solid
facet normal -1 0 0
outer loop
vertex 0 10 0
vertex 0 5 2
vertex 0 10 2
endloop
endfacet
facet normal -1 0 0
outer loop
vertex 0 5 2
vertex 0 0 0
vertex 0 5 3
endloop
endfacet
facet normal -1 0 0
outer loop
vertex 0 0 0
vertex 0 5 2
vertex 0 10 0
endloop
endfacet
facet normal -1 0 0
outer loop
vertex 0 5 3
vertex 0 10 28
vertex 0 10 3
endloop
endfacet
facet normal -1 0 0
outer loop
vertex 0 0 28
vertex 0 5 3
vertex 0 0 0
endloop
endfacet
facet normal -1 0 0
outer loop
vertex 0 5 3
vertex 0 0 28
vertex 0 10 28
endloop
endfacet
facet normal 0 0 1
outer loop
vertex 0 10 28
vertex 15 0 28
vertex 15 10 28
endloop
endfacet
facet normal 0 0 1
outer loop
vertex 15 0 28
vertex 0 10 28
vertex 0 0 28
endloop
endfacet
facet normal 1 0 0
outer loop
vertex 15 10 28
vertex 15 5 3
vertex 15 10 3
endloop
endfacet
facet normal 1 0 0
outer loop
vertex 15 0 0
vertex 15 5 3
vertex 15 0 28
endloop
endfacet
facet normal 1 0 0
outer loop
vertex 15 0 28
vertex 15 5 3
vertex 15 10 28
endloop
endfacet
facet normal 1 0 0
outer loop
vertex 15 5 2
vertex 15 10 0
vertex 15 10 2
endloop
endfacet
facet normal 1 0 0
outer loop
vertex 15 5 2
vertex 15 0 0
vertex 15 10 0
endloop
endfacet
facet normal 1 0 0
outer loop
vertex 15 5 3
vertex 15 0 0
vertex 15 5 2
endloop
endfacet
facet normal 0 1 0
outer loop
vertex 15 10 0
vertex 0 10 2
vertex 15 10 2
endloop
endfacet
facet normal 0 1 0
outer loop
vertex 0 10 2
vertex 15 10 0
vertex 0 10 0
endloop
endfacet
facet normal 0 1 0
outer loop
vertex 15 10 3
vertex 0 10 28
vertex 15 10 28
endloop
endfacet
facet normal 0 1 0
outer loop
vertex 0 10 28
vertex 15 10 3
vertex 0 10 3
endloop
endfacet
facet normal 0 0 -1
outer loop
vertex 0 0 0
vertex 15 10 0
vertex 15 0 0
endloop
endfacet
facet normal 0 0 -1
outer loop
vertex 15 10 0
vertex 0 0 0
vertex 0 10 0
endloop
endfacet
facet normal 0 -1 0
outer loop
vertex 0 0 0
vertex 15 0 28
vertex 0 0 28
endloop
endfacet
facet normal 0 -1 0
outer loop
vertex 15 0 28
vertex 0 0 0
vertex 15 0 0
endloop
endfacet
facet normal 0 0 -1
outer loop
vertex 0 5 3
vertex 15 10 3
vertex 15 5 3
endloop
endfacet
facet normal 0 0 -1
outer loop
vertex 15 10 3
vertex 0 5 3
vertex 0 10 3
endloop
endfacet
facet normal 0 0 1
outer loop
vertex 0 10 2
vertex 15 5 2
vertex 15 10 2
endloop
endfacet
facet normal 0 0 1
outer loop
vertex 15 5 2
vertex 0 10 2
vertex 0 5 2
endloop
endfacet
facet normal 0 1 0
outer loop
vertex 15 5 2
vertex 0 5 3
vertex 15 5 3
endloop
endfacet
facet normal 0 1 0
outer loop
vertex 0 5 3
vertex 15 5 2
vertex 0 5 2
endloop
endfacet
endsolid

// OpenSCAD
difference() {
    cube([15,10,28]);
    translate([0,5,2])
        cube([15,5,1]);

}
